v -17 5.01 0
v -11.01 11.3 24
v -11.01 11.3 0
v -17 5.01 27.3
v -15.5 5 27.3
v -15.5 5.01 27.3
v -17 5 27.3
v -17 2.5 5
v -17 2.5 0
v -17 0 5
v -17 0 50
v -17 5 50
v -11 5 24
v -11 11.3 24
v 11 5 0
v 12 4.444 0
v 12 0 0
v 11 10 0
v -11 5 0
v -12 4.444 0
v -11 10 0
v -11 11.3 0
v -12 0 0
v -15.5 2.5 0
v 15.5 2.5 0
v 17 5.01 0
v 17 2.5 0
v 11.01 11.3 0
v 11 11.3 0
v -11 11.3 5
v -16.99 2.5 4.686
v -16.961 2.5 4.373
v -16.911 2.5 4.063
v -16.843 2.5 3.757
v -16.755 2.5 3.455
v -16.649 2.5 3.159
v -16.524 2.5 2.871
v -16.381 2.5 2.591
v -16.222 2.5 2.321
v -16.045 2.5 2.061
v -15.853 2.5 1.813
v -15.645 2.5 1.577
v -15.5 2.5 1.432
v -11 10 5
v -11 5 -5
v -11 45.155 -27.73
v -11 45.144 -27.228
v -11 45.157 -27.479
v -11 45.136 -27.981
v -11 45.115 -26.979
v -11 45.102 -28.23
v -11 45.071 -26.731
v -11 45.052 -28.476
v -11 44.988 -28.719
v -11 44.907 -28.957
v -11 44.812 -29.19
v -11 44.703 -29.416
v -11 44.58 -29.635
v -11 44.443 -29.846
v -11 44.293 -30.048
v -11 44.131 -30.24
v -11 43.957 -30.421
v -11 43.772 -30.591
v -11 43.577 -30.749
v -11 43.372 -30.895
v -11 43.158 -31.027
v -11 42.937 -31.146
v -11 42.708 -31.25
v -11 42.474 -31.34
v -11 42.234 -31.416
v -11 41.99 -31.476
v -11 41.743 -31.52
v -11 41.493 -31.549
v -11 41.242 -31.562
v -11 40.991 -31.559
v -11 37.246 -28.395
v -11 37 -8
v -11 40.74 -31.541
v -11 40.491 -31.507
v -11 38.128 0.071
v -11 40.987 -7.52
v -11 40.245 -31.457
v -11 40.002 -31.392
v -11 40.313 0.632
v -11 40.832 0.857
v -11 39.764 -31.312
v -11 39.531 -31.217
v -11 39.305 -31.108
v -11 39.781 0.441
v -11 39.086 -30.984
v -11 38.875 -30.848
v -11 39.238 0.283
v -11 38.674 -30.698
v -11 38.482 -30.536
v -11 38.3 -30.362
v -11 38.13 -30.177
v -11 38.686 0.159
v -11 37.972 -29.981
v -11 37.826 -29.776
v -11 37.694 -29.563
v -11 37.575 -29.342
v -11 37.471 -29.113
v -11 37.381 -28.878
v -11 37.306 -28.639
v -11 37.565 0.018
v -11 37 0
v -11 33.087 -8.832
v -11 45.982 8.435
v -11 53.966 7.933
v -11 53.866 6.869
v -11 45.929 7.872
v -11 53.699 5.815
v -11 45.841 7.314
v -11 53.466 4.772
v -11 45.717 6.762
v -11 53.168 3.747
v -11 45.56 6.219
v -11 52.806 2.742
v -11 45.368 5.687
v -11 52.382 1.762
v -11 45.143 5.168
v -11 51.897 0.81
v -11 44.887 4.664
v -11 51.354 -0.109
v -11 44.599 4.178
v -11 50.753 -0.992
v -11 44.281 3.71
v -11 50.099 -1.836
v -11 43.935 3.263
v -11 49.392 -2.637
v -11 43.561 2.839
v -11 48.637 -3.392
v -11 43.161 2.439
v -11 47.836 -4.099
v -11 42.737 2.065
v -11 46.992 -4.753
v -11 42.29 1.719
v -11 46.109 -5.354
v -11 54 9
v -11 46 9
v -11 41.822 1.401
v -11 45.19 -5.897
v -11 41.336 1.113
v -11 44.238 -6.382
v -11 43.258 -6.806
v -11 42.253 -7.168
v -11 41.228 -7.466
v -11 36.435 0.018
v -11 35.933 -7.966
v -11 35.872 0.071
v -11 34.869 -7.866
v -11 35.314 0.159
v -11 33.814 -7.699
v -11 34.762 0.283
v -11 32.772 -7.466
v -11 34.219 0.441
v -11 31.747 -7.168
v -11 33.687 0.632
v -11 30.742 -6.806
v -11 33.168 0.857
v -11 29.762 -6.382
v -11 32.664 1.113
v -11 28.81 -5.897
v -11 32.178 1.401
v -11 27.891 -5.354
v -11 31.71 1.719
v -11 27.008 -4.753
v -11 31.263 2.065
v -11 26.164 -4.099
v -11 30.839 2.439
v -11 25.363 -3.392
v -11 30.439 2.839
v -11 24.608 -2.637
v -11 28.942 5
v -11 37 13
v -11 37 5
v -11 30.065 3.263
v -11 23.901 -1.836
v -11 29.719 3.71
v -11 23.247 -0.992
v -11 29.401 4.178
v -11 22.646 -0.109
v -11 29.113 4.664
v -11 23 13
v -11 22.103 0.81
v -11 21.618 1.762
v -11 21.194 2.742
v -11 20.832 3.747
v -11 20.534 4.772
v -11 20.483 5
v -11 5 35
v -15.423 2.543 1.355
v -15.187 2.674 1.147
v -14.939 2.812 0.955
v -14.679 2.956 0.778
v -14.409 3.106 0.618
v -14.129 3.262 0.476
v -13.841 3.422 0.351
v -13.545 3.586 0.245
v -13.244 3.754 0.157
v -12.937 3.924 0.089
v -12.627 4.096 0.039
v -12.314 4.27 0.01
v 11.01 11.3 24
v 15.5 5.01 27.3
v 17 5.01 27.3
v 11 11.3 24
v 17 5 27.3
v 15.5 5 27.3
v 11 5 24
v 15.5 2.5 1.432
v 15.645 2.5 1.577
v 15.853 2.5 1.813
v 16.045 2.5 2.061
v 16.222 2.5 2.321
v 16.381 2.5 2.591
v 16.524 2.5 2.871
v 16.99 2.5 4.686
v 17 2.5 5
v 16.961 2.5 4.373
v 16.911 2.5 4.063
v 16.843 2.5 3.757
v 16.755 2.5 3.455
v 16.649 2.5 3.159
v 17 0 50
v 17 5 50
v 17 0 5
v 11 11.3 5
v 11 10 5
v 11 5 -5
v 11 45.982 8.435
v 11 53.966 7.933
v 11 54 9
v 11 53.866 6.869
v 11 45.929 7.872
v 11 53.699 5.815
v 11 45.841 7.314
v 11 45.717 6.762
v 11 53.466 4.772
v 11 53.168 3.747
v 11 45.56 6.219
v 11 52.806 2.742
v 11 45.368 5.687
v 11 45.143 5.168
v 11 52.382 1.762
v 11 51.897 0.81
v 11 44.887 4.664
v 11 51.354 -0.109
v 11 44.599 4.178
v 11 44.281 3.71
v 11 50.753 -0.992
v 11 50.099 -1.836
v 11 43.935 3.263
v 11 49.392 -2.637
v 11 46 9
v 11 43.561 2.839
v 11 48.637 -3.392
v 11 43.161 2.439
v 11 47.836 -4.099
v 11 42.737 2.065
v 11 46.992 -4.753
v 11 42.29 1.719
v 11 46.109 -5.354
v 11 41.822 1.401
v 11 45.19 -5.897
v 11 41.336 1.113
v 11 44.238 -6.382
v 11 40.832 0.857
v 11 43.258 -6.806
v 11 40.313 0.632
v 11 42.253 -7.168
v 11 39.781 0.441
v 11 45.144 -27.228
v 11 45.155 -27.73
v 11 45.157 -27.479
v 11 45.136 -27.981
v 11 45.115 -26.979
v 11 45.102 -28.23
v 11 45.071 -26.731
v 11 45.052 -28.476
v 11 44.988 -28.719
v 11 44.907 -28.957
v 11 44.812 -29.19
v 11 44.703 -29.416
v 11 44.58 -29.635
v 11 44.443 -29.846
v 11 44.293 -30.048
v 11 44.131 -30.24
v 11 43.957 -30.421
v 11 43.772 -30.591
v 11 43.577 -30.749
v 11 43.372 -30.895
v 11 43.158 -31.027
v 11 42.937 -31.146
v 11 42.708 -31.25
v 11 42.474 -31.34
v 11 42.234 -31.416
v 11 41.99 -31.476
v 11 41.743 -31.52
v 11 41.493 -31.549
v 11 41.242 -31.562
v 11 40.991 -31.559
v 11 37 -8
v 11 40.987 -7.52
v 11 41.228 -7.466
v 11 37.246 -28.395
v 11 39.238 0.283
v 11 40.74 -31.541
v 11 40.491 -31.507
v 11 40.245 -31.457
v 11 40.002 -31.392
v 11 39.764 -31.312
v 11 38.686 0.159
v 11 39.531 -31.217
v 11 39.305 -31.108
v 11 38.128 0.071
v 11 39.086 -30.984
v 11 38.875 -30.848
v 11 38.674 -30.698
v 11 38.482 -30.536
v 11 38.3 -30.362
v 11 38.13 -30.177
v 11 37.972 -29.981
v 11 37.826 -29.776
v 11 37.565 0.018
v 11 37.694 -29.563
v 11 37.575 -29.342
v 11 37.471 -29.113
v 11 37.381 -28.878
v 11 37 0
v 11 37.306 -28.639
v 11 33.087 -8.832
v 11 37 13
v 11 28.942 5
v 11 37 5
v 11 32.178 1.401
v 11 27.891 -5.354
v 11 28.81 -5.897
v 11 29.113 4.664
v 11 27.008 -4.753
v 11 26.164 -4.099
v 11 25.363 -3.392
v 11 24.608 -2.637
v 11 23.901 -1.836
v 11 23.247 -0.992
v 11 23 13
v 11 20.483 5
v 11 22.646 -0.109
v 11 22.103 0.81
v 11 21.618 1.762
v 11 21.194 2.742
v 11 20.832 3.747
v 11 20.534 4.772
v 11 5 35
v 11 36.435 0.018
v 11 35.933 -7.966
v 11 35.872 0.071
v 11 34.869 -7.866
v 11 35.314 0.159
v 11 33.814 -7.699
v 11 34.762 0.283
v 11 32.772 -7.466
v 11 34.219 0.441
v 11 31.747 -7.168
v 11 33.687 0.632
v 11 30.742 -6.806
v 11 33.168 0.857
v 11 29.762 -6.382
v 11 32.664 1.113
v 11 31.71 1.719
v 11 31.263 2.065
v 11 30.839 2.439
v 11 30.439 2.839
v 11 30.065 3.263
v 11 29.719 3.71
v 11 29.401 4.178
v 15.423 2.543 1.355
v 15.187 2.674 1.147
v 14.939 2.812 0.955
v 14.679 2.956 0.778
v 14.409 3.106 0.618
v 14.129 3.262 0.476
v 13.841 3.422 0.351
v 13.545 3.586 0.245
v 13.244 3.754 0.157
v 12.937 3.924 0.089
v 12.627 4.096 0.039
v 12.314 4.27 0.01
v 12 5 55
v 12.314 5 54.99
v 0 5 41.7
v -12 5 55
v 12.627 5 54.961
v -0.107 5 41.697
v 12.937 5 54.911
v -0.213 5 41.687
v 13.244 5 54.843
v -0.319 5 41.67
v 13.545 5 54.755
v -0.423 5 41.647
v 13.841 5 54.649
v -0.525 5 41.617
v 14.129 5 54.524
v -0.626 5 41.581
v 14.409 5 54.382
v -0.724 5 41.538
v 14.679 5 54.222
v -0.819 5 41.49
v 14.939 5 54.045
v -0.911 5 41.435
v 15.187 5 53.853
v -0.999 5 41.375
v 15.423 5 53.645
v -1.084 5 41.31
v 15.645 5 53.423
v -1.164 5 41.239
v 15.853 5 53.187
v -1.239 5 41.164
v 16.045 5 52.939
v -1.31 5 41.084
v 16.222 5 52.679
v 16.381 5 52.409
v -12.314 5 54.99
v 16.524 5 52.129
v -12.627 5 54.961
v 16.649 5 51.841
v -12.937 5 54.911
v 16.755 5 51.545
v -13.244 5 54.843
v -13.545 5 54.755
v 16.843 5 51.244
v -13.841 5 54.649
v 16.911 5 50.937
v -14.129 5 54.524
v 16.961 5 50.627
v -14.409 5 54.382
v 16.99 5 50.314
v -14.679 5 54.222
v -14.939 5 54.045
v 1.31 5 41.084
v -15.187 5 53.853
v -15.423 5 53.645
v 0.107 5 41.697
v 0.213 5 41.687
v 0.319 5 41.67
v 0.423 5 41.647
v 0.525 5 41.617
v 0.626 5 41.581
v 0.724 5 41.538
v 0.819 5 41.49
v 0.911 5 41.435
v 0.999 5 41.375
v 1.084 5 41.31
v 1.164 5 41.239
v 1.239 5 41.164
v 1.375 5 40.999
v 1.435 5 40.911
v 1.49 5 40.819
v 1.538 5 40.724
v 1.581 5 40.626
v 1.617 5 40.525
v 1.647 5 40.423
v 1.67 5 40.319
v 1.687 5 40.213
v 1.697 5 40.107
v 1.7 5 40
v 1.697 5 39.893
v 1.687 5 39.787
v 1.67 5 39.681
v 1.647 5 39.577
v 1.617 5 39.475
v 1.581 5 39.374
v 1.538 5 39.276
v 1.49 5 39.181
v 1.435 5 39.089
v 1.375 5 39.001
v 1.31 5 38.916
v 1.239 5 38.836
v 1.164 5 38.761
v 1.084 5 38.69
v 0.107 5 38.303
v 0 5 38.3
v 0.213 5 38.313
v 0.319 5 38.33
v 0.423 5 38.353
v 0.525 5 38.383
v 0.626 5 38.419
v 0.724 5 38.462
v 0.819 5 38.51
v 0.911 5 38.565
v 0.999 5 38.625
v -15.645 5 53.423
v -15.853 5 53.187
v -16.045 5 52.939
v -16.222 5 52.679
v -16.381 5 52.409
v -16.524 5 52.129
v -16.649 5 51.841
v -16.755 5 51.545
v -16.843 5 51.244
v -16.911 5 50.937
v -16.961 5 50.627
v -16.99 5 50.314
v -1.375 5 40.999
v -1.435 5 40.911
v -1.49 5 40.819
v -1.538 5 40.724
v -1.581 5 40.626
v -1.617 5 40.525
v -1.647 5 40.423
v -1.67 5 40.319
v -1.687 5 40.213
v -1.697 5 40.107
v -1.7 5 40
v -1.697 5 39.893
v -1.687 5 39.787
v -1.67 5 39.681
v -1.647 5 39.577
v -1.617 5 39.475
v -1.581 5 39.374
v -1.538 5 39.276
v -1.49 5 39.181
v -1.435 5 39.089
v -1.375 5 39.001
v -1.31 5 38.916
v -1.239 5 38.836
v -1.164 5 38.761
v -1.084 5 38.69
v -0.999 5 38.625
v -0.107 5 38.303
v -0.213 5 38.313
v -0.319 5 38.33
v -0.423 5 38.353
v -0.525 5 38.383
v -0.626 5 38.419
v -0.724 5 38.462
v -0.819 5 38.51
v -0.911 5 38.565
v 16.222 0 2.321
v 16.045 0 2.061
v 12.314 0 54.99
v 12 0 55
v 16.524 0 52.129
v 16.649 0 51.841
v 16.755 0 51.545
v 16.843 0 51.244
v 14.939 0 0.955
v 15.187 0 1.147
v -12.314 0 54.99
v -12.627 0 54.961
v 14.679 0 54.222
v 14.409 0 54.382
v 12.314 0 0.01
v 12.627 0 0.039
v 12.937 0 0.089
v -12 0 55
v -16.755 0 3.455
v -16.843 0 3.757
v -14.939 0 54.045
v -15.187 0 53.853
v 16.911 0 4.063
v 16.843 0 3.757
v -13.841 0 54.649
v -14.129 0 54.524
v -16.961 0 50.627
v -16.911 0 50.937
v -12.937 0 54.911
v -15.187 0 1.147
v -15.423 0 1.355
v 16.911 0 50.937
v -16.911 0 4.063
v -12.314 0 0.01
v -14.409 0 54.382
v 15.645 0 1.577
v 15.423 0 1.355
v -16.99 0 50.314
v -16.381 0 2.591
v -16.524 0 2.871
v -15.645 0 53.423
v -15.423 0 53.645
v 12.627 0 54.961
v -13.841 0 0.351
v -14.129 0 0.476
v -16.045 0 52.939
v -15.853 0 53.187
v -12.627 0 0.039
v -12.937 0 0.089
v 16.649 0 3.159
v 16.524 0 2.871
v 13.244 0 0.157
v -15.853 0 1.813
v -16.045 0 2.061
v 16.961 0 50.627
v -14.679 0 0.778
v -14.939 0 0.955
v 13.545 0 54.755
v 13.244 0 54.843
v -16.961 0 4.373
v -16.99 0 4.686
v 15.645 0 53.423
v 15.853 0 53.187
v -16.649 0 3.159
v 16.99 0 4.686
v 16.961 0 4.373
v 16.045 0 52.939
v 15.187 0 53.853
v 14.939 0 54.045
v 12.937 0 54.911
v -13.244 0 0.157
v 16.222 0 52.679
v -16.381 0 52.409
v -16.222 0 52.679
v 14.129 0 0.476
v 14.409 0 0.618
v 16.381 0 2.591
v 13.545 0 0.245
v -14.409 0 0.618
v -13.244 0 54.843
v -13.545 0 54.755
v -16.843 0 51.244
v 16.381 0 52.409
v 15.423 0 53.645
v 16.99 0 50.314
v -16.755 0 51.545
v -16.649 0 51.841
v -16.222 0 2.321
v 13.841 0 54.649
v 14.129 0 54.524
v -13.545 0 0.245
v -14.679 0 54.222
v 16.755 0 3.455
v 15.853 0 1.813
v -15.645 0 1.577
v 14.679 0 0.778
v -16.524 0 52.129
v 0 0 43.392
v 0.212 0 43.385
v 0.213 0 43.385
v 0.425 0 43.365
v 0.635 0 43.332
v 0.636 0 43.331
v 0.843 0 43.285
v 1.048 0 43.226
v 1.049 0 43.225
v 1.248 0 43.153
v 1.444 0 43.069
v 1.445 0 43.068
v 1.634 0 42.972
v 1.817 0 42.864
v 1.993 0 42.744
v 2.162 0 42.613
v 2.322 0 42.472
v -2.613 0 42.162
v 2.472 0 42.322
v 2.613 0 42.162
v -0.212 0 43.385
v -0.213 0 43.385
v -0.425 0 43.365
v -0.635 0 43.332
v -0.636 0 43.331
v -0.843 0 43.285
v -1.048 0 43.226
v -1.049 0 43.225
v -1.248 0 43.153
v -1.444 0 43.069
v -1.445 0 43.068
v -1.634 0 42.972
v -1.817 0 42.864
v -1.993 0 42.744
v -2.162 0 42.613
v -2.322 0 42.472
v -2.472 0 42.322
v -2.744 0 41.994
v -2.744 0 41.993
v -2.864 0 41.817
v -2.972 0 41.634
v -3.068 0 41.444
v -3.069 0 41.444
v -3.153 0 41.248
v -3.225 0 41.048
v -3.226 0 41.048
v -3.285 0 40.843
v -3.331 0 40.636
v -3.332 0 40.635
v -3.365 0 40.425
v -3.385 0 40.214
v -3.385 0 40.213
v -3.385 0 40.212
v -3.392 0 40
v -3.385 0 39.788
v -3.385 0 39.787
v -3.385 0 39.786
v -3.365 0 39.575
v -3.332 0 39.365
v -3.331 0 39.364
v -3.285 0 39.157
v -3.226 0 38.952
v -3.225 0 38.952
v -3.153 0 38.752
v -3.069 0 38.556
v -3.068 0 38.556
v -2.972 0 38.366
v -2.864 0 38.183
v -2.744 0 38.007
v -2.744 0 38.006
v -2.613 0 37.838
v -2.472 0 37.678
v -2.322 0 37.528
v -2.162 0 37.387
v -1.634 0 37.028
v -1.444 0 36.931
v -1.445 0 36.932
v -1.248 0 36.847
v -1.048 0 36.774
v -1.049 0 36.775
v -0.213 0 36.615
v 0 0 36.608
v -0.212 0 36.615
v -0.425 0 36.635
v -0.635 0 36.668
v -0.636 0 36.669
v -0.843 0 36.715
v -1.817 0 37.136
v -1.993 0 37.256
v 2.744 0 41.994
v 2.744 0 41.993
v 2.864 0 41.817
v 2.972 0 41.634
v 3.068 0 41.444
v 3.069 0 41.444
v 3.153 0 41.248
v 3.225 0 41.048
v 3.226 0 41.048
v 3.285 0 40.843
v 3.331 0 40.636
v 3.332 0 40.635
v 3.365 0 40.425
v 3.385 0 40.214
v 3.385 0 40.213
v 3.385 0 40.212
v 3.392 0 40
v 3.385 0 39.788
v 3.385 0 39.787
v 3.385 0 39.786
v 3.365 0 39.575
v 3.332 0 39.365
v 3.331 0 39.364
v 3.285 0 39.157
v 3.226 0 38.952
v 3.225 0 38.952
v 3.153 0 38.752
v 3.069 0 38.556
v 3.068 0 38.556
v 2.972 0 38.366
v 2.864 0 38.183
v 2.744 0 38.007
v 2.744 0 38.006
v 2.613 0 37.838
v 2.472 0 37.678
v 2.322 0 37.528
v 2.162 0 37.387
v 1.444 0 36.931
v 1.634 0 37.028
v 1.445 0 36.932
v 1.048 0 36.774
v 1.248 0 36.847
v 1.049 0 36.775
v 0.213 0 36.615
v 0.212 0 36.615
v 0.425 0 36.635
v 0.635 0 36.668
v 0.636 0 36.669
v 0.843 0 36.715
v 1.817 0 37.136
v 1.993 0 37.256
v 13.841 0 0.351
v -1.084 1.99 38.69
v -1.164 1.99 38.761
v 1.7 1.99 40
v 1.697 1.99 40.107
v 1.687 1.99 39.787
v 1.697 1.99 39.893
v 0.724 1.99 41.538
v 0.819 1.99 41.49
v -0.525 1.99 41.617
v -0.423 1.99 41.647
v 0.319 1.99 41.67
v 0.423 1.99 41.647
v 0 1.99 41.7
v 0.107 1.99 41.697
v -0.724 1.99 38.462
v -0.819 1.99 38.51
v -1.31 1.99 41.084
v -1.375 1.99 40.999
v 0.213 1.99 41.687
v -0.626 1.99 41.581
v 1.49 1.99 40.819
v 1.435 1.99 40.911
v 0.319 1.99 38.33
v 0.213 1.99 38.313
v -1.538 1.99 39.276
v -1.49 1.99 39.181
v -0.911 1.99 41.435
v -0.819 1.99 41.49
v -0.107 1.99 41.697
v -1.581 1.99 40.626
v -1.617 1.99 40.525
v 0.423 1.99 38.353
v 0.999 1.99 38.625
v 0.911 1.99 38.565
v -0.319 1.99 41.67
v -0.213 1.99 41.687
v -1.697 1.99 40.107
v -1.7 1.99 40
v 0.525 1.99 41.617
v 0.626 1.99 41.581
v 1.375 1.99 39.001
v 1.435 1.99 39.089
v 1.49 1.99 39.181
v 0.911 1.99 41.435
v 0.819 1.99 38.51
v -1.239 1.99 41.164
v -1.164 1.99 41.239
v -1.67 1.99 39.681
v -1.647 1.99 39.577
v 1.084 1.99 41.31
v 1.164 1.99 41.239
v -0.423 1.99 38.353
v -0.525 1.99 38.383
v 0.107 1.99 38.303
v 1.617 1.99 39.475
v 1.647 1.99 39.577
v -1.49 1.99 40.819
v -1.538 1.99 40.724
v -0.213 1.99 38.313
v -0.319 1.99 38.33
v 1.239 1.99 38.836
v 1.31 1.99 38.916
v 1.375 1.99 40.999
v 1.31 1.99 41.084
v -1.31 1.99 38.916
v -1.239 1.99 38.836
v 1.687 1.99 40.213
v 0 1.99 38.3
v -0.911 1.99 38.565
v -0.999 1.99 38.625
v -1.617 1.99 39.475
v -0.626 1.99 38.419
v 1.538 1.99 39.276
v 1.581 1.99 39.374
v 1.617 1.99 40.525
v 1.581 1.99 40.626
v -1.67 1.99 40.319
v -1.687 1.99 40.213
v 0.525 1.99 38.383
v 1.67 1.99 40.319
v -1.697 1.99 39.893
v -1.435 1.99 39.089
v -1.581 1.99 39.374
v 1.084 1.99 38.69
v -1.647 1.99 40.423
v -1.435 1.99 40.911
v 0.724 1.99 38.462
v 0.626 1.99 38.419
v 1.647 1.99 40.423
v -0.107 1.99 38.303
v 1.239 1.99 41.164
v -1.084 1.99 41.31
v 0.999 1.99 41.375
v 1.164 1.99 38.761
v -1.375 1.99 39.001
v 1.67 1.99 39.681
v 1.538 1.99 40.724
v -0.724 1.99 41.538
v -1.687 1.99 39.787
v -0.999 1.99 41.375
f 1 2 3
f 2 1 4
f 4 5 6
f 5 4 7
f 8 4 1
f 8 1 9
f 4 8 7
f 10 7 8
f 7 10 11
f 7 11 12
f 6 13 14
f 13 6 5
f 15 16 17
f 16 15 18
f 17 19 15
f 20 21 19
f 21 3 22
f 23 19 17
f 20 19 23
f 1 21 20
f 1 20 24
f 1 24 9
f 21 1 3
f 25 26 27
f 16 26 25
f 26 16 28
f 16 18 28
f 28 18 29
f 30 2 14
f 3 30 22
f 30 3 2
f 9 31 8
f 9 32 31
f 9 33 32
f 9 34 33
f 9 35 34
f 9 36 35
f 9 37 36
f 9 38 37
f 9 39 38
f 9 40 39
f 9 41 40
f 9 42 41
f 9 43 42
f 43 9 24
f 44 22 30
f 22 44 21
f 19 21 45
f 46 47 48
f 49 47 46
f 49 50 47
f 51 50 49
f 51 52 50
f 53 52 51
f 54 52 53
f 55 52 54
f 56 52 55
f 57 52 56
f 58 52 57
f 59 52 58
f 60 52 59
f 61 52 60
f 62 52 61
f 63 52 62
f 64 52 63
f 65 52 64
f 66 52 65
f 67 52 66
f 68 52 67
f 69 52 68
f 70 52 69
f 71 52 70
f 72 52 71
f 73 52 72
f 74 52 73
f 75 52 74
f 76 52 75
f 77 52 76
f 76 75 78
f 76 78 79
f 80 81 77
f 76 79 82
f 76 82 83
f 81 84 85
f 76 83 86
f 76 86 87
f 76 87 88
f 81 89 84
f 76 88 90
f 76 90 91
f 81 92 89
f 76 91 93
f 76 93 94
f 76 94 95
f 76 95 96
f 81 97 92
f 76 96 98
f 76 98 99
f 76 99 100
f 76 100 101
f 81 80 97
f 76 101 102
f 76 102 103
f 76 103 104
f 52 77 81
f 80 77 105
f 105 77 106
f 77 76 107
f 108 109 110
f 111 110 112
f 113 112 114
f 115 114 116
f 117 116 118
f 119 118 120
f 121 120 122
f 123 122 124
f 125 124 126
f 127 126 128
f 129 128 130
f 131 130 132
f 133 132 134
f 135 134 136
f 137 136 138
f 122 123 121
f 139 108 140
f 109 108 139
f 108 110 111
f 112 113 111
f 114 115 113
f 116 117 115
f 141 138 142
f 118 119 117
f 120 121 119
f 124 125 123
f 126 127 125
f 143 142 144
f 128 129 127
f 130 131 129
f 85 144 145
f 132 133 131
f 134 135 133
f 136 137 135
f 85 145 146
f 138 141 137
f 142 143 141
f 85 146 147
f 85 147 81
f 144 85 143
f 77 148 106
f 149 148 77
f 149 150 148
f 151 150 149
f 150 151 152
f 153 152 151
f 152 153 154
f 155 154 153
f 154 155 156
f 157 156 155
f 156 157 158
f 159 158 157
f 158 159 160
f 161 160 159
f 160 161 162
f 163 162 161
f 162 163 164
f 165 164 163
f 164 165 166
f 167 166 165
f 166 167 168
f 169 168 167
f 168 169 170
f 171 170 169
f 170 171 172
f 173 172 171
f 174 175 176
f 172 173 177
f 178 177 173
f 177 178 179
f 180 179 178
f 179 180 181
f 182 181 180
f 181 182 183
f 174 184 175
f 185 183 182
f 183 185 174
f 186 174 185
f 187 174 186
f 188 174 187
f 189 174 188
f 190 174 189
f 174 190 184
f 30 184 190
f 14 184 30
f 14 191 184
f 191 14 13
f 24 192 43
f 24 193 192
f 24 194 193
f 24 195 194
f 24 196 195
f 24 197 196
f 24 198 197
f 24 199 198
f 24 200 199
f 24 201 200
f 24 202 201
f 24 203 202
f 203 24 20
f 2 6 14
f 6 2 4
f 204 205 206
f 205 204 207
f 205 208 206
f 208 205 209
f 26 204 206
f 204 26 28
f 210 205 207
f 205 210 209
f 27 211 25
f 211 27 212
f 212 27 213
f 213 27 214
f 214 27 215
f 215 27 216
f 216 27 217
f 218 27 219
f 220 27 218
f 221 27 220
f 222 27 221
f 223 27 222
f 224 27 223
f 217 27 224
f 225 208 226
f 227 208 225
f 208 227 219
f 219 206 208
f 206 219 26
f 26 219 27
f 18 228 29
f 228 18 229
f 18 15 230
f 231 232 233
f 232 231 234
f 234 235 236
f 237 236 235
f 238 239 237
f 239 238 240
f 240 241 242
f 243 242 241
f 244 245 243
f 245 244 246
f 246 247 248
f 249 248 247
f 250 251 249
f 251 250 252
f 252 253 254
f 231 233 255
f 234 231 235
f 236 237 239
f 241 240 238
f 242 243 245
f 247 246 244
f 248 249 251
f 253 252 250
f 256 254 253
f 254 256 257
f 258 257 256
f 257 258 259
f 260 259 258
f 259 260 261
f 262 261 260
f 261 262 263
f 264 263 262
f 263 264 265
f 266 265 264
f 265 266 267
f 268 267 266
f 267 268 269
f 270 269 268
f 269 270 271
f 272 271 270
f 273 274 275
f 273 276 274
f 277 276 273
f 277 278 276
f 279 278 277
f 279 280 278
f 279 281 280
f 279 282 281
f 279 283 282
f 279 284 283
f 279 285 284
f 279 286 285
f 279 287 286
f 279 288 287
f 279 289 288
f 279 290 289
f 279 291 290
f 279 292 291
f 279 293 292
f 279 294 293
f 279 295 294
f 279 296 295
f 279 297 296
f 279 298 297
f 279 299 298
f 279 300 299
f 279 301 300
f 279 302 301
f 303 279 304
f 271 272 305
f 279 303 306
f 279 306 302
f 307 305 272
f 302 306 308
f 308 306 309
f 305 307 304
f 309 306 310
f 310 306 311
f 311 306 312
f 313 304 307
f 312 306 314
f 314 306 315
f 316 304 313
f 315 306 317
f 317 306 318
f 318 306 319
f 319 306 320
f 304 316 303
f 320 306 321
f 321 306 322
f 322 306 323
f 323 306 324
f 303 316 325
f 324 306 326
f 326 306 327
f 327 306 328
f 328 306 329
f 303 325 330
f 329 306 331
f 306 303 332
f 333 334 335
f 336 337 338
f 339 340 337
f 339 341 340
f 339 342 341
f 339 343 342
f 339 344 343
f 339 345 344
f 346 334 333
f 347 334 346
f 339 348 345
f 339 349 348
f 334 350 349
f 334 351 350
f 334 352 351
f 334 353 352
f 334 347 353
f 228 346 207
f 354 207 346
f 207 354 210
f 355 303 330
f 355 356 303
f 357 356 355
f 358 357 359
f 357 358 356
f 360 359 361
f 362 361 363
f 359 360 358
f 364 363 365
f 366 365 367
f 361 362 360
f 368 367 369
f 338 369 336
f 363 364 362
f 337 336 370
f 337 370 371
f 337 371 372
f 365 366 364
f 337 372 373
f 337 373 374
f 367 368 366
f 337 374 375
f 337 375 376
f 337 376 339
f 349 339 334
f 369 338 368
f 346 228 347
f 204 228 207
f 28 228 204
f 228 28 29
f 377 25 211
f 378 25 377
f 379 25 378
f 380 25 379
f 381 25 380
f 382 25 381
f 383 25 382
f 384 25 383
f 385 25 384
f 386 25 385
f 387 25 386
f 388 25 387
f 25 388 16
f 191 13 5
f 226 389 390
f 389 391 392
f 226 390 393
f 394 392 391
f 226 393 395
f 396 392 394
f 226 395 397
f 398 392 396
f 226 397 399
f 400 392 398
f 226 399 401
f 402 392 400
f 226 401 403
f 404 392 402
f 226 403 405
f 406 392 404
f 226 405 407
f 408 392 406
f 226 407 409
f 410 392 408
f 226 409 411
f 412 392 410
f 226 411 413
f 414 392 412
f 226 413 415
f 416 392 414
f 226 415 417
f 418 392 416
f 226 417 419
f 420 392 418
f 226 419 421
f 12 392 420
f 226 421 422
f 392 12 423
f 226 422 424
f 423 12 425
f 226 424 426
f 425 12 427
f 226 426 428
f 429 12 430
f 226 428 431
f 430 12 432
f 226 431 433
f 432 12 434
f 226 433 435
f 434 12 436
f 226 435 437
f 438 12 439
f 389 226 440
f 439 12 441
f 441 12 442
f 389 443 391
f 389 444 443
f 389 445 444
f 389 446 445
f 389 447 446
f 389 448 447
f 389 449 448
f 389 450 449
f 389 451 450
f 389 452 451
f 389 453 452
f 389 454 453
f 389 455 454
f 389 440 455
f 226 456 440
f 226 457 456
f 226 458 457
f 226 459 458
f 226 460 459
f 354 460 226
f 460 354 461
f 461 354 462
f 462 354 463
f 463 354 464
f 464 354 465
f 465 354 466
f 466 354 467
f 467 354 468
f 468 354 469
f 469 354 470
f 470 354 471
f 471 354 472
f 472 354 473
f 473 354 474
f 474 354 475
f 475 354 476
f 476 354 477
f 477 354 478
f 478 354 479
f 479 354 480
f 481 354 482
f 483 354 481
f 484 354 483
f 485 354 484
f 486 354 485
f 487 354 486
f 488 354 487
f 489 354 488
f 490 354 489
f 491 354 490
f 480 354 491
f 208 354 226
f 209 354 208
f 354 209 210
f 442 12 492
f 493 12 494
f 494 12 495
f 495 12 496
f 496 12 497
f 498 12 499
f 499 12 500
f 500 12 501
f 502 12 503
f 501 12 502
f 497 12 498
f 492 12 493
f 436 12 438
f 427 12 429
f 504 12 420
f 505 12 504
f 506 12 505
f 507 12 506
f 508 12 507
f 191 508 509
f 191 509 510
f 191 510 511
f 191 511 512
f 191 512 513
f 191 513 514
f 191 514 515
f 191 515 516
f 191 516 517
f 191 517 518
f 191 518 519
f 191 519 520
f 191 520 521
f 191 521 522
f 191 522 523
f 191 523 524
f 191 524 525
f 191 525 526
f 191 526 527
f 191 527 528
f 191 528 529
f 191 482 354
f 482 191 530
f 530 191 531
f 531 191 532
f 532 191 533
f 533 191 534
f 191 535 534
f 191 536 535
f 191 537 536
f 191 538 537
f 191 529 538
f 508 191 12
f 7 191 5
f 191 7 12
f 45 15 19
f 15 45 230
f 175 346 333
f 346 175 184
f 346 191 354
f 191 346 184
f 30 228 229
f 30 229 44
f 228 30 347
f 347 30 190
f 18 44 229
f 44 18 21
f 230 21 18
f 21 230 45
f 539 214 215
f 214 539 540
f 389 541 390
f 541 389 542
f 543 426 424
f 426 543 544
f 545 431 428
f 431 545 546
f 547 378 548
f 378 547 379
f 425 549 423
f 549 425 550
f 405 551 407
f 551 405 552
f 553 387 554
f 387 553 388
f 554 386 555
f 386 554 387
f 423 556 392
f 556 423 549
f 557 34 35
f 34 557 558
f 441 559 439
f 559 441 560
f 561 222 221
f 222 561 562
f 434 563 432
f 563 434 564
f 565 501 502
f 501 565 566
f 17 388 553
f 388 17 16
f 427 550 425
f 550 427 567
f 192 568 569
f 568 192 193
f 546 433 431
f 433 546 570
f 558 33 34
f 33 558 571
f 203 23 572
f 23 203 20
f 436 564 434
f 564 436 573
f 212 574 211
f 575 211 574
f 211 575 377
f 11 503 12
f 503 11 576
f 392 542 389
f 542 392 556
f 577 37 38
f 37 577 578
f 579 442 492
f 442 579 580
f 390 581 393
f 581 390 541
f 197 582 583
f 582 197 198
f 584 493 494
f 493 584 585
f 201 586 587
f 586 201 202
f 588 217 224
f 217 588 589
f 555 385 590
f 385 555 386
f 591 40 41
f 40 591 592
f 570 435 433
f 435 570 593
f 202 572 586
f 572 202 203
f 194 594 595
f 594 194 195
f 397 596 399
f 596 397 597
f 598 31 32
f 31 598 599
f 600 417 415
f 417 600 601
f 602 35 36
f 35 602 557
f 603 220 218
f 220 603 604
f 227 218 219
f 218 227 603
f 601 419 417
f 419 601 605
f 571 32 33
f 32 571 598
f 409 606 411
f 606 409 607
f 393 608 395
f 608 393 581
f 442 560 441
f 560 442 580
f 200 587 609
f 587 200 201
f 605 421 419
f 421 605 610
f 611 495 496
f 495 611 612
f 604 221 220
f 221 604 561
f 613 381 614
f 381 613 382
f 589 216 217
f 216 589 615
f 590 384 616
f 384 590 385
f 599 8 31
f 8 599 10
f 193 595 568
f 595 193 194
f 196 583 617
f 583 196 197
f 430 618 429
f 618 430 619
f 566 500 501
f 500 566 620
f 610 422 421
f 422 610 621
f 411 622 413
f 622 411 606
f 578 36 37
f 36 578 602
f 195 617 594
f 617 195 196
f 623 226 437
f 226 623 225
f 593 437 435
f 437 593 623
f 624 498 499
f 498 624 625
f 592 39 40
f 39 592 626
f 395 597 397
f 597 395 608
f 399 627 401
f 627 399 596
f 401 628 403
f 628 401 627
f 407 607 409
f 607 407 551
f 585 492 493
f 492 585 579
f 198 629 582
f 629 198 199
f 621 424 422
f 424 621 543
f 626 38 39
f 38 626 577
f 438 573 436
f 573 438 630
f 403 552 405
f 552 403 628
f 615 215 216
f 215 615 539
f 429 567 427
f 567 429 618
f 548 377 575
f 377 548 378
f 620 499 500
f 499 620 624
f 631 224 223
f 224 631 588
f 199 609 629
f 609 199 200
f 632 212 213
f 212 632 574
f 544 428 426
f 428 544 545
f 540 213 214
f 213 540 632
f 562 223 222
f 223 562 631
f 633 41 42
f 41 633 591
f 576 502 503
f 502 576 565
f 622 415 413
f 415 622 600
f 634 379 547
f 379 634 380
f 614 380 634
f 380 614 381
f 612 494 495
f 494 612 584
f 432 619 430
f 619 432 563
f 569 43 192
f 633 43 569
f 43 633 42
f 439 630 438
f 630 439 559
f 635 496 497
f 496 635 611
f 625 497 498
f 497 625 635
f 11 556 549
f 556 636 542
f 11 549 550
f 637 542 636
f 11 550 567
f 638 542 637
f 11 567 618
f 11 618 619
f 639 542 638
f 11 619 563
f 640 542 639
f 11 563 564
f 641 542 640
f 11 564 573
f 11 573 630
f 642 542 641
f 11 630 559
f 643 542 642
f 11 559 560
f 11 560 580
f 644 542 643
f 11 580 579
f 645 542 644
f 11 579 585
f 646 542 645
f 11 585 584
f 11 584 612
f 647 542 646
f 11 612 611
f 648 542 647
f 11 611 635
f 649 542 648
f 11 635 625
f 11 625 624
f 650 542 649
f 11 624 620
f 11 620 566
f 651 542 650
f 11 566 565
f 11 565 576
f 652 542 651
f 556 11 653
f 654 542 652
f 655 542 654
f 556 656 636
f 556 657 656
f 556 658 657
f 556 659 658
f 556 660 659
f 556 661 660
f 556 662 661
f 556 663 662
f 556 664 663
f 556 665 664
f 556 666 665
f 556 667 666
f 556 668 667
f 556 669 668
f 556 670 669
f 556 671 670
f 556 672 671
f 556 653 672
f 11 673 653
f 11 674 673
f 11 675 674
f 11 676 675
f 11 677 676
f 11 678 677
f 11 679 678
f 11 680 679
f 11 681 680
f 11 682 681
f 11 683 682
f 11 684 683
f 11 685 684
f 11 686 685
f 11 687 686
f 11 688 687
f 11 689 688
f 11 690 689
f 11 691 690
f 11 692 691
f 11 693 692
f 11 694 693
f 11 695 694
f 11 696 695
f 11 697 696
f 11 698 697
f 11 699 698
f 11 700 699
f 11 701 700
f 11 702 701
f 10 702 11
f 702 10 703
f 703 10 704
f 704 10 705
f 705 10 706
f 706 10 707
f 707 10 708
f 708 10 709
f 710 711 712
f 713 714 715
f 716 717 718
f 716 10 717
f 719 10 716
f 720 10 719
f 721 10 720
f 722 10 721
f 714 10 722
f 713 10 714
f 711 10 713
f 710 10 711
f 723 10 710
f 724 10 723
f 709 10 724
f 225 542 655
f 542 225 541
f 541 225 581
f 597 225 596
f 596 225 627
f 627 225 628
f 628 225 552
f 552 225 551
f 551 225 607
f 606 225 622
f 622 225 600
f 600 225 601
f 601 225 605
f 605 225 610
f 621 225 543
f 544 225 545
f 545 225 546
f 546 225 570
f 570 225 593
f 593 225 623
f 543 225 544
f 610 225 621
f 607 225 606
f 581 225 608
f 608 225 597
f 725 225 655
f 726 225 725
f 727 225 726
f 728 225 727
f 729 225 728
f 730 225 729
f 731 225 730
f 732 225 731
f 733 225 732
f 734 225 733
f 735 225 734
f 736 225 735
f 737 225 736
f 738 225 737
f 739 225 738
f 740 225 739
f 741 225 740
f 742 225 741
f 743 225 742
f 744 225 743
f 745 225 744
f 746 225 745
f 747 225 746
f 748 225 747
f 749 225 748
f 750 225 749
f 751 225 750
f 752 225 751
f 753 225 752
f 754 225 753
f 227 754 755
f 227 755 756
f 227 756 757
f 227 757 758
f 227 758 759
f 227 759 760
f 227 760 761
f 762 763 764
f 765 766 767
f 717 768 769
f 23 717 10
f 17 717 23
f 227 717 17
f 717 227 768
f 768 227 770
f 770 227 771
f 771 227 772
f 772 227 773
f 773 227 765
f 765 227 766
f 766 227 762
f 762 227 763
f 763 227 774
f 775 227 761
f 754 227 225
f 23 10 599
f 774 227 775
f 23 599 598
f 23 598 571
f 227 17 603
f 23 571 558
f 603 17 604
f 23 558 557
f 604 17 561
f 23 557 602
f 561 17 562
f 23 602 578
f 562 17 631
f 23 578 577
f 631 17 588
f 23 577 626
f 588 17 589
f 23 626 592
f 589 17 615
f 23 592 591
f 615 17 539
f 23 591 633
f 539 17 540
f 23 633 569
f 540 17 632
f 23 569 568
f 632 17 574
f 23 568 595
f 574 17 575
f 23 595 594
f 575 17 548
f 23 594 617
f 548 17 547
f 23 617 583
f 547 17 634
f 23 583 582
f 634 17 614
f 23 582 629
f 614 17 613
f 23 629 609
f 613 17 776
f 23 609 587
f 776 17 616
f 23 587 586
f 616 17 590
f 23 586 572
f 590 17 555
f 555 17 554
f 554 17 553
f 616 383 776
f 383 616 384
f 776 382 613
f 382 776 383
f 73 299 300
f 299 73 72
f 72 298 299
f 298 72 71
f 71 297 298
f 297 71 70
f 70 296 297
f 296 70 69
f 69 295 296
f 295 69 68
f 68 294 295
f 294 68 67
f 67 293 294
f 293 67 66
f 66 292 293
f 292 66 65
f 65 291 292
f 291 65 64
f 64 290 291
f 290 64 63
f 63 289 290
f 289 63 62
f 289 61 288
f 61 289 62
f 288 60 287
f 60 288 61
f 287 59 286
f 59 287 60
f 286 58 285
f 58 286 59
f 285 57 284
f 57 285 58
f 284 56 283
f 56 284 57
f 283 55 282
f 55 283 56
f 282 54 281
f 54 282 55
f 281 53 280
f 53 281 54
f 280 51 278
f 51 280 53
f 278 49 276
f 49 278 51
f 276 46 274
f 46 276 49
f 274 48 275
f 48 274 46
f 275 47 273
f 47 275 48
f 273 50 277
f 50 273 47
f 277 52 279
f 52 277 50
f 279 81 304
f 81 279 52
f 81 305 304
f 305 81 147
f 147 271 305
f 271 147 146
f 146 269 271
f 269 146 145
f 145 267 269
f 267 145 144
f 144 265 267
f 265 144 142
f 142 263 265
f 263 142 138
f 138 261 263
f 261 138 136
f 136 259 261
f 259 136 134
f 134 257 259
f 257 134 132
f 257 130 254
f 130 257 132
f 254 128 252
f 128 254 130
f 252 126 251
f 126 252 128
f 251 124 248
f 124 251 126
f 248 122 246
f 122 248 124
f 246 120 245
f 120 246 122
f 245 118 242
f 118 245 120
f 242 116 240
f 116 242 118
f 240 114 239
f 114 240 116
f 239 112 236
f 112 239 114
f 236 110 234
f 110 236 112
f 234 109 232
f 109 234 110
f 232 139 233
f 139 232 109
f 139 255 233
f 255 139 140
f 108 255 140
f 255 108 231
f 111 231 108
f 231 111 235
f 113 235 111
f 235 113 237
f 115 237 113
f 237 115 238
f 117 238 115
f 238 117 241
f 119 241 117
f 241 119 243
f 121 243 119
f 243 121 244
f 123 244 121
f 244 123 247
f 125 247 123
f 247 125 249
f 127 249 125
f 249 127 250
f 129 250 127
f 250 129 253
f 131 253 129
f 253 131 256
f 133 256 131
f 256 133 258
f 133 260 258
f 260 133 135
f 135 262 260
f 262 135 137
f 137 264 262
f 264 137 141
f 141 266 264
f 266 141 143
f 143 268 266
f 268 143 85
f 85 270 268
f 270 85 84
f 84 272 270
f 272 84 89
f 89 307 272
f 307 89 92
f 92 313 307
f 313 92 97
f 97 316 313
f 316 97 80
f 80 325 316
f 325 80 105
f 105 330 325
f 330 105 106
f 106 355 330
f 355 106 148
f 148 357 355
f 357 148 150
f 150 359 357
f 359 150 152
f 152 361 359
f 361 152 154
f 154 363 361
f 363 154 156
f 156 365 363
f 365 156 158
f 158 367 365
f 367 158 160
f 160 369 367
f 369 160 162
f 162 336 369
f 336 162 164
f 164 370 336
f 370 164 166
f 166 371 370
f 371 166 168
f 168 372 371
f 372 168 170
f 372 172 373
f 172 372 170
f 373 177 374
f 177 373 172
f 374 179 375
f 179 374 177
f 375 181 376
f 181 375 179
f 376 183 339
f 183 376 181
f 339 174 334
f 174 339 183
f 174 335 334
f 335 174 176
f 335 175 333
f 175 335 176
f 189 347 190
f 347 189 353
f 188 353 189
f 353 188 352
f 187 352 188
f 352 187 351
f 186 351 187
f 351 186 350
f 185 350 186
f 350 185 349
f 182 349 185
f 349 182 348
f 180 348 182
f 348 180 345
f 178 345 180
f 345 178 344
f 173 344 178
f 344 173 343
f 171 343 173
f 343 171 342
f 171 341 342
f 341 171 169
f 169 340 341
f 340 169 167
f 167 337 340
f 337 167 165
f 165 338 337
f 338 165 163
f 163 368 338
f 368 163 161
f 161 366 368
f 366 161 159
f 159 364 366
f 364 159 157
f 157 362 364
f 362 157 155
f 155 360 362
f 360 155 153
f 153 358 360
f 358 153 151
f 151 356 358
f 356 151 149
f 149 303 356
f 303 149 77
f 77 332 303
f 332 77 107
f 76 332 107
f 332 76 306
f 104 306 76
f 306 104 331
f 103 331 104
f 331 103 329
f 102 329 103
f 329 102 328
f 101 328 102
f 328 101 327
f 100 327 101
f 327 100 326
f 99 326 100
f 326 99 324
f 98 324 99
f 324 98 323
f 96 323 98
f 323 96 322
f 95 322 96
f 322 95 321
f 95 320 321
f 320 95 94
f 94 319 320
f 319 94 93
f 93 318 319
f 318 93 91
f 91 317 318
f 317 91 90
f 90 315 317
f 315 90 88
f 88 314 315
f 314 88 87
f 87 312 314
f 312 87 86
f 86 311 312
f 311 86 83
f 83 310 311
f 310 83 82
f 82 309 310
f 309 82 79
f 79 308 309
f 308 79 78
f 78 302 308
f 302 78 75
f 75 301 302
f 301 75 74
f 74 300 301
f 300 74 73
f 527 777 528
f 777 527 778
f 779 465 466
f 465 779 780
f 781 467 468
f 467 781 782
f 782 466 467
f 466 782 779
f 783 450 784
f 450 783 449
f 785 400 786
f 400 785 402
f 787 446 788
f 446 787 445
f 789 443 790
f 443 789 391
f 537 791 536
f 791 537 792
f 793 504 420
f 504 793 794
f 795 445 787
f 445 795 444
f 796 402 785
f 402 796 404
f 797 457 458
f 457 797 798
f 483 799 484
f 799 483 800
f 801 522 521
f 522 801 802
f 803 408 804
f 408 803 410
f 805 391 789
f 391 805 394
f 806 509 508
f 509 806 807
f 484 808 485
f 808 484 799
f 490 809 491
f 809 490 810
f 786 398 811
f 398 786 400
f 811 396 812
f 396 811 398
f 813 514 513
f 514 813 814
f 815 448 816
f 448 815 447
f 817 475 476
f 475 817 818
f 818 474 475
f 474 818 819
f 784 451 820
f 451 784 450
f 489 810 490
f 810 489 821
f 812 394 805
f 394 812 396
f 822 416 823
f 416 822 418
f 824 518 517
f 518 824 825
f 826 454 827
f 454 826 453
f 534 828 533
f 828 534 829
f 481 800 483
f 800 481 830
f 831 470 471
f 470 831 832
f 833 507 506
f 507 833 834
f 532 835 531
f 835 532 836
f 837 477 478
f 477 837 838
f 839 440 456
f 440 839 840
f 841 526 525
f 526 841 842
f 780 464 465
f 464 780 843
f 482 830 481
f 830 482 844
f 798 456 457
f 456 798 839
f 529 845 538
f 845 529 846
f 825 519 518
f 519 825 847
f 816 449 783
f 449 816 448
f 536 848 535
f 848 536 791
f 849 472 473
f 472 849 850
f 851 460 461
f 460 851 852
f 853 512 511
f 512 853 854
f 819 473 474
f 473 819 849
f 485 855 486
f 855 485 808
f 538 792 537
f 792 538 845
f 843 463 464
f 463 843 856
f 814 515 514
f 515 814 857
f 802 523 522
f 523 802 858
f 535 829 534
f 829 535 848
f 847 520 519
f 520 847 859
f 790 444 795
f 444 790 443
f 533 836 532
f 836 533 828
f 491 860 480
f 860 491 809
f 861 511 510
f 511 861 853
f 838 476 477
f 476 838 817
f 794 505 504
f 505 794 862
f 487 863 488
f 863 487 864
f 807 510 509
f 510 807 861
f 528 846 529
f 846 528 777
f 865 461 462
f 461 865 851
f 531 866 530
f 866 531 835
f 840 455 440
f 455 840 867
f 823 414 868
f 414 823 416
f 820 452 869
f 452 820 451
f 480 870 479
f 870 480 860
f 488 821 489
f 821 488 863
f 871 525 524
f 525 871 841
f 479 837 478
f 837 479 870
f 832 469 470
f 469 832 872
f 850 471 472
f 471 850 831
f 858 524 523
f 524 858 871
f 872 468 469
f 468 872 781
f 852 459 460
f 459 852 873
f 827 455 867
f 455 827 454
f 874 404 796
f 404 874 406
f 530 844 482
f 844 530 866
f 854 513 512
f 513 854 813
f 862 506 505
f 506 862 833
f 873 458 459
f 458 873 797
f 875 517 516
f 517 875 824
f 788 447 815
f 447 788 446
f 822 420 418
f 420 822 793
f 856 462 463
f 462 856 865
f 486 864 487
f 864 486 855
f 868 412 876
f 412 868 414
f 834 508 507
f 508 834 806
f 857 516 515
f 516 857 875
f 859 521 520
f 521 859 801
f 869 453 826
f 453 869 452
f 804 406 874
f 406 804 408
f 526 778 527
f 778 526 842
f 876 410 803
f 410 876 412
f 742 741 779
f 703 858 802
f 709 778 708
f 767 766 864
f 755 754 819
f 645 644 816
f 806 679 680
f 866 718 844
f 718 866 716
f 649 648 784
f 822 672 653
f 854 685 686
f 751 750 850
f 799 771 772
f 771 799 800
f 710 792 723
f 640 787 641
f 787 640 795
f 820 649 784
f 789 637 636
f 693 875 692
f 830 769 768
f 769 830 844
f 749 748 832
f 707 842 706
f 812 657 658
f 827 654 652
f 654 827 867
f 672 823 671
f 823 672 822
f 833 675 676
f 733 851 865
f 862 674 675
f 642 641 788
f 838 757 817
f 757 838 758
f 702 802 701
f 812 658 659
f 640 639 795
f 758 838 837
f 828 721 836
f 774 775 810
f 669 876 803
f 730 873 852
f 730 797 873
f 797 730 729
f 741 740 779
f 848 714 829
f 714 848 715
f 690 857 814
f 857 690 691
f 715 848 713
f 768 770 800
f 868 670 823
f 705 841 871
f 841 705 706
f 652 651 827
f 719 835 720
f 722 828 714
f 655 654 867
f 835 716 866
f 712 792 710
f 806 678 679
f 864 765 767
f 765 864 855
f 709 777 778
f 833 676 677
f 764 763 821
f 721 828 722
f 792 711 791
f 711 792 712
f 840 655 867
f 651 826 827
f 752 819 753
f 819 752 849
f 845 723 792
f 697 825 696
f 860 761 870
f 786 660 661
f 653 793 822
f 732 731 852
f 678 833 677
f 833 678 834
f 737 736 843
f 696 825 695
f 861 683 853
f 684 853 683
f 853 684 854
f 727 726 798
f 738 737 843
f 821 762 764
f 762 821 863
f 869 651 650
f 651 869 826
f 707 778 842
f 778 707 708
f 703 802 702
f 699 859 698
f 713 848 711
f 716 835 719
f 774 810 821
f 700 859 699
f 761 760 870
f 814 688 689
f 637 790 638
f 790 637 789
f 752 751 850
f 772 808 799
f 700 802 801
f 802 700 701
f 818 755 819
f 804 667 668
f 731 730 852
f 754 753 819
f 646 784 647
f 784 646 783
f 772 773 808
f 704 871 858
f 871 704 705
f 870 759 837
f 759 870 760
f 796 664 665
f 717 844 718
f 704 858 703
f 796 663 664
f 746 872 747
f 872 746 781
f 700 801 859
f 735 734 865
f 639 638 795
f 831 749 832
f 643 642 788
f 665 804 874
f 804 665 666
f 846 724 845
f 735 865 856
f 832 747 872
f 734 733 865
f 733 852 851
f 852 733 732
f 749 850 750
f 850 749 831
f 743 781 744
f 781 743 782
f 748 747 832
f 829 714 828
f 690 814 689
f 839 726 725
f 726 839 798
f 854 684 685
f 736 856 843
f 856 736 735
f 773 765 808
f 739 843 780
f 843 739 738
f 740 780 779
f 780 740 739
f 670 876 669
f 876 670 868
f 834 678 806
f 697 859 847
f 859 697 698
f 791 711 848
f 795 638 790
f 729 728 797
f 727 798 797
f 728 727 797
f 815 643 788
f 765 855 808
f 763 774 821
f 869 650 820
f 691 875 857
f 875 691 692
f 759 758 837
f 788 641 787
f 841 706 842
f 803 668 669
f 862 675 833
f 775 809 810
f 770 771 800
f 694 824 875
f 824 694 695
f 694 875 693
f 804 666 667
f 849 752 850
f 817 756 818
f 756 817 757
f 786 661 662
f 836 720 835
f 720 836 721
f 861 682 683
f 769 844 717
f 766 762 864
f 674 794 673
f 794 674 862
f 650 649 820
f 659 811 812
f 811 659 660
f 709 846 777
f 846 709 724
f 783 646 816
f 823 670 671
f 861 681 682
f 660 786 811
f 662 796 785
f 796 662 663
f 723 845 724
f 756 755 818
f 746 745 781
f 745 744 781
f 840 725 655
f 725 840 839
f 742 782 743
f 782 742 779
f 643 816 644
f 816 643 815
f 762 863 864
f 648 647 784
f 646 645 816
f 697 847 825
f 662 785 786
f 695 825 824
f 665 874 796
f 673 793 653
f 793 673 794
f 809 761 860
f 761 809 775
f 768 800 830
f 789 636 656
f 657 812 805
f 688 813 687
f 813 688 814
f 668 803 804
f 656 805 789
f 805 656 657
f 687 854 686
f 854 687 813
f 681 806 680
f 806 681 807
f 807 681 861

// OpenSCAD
// =============================================
// Wall-mounted Towel Hook
// M3 flat head screw mounting
// Robust design for heavy towels
// Print: plate flat on bed, hook up
// =============================================

$fn = 100;

// === Dimensions ===
// Mounting plate
plate_w    = 34;
plate_h    = 55;
plate_t    = 5;
plate_r    = 5;

// Hook body
hook_w     = 22;       // Width of the hook arm
hook_len   = 32;       // Arm extension from wall
hook_t     = 8;        // Arm thickness (strong)
curve_r    = 13;       // Inner radius of J-curve
tip_len    = 20;       // Anti-slip tip length
tip_angle  = 12;       // Tip lean-back angle (degrees)
arm_z      = 5;        // Bottom of arm above plate bottom

// Structural reinforcement
gusset_along = 18;     // Gusset extent along arm
gusset_up    = 22;     // Gusset extent up the plate

// M3 Flat head screw
m3_shaft_d  = 3.4;     // Clearance
m3_head_d   = 6.8;     // Head diameter
m3_sink     = 2.0;     // Countersink depth
screw_z     = plate_h - 15;

// === Wall Plate ===
module wall_plate() {
    translate([0, plate_t/2, plate_h/2])
    rotate([90, 0, 0])
    linear_extrude(plate_t, center=true)
        offset(plate_r) offset(-plate_r)
            square([plate_w, plate_h], center=true);
}

// === Screw Hole with Countersink ===
module screw_hole() {
    translate([0, 0, screw_z]) {
        // Shaft through-hole
        rotate([-90, 0, 0])
            translate([0, 0, -0.5])
                cylinder(d=m3_shaft_d, h=plate_t + 1);
        // Countersink on back (y=0 face)
        rotate([-90, 0, 0])
            translate([0, 0, -0.01])
                cylinder(d1=m3_head_d, d2=m3_shaft_d, h=m3_sink);
    }
}

// === J-Hook 2D Profile (YZ plane) ===
module hook_2d() {
    ro = curve_r + hook_t/2;
    ri = curve_r - hook_t/2;
    cy = plate_t + hook_len;       // Curve center Y
    cz = arm_z + hook_t/2;        // Curve center Z

    // Straight arm
    translate([plate_t, arm_z])
        square([hook_len, hook_t]);

    // 180° curve
    translate([cy, cz])
    difference() {
        circle(r=ro);
        circle(r=ri);
        translate([-ro-1, 0]) square([2*ro+2, ro+1]);
    }

    // Anti-slip tip curving upward
    ty = cy;
    tz = cz - ro;
    translate([ty, tz])
    rotate(180 + tip_angle) {
        translate([-hook_t/2, 0])
            square([hook_t, tip_len]);
        translate([0, tip_len])
            circle(d=hook_t);
    }
}

module hook_body() {
    rotate([90, 0, 90])
    translate([0, 0, -hook_w/2])
    linear_extrude(hook_w)
        hook_2d();
}

// === Reinforcement ===
module reinforcement() {
    at = arm_z + hook_t;
    flare = (plate_w - hook_w) / 2;

    // Upper gusset triangle (full hook width)
    translate([-hook_w/2, plate_t, at])
    rotate([0, 90, 0])
    linear_extrude(hook_w)
        polygon([[0,0], [0, gusset_along], [-gusset_up, 0]]);

    // Lower fill + mini gusset
    translate([-hook_w/2, plate_t, 0])
        cube([hook_w, 5, arm_z]);

    translate([-hook_w/2, plate_t, 0])
    rotate([0, 90, 0])
    linear_extrude(hook_w)
        polygon([[0,0], [0, 5], [arm_z, 0]]);

    // Side flare wings (blend hook width to plate width)
    for (s = [-1, 1]) {
        mirror_x = s > 0 ? 0 : 1;
        mirror([mirror_x, 0, 0])
        hull() {
            // At hook edge, goes up most of gusset
            translate([hook_w/2, plate_t, 0])
                cube([0.01, gusset_along * 0.35, at + gusset_up * 0.5]);
            // At plate edge, tall but thin
            translate([plate_w/2 - 1.5, plate_t/2, 0])
                cube([1.5, plate_t/2 + 0.01, at + gusset_up * 0.65]);
        }
    }
}

// === Final Assembly ===
difference() {
    union() {
        wall_plate();
        hook_body();
        reinforcement();
    }
    screw_hole();

    // Trim behind wall (y < 0)
    translate([-60, -60, -10])
        cube([120, 60, 100]);
}
